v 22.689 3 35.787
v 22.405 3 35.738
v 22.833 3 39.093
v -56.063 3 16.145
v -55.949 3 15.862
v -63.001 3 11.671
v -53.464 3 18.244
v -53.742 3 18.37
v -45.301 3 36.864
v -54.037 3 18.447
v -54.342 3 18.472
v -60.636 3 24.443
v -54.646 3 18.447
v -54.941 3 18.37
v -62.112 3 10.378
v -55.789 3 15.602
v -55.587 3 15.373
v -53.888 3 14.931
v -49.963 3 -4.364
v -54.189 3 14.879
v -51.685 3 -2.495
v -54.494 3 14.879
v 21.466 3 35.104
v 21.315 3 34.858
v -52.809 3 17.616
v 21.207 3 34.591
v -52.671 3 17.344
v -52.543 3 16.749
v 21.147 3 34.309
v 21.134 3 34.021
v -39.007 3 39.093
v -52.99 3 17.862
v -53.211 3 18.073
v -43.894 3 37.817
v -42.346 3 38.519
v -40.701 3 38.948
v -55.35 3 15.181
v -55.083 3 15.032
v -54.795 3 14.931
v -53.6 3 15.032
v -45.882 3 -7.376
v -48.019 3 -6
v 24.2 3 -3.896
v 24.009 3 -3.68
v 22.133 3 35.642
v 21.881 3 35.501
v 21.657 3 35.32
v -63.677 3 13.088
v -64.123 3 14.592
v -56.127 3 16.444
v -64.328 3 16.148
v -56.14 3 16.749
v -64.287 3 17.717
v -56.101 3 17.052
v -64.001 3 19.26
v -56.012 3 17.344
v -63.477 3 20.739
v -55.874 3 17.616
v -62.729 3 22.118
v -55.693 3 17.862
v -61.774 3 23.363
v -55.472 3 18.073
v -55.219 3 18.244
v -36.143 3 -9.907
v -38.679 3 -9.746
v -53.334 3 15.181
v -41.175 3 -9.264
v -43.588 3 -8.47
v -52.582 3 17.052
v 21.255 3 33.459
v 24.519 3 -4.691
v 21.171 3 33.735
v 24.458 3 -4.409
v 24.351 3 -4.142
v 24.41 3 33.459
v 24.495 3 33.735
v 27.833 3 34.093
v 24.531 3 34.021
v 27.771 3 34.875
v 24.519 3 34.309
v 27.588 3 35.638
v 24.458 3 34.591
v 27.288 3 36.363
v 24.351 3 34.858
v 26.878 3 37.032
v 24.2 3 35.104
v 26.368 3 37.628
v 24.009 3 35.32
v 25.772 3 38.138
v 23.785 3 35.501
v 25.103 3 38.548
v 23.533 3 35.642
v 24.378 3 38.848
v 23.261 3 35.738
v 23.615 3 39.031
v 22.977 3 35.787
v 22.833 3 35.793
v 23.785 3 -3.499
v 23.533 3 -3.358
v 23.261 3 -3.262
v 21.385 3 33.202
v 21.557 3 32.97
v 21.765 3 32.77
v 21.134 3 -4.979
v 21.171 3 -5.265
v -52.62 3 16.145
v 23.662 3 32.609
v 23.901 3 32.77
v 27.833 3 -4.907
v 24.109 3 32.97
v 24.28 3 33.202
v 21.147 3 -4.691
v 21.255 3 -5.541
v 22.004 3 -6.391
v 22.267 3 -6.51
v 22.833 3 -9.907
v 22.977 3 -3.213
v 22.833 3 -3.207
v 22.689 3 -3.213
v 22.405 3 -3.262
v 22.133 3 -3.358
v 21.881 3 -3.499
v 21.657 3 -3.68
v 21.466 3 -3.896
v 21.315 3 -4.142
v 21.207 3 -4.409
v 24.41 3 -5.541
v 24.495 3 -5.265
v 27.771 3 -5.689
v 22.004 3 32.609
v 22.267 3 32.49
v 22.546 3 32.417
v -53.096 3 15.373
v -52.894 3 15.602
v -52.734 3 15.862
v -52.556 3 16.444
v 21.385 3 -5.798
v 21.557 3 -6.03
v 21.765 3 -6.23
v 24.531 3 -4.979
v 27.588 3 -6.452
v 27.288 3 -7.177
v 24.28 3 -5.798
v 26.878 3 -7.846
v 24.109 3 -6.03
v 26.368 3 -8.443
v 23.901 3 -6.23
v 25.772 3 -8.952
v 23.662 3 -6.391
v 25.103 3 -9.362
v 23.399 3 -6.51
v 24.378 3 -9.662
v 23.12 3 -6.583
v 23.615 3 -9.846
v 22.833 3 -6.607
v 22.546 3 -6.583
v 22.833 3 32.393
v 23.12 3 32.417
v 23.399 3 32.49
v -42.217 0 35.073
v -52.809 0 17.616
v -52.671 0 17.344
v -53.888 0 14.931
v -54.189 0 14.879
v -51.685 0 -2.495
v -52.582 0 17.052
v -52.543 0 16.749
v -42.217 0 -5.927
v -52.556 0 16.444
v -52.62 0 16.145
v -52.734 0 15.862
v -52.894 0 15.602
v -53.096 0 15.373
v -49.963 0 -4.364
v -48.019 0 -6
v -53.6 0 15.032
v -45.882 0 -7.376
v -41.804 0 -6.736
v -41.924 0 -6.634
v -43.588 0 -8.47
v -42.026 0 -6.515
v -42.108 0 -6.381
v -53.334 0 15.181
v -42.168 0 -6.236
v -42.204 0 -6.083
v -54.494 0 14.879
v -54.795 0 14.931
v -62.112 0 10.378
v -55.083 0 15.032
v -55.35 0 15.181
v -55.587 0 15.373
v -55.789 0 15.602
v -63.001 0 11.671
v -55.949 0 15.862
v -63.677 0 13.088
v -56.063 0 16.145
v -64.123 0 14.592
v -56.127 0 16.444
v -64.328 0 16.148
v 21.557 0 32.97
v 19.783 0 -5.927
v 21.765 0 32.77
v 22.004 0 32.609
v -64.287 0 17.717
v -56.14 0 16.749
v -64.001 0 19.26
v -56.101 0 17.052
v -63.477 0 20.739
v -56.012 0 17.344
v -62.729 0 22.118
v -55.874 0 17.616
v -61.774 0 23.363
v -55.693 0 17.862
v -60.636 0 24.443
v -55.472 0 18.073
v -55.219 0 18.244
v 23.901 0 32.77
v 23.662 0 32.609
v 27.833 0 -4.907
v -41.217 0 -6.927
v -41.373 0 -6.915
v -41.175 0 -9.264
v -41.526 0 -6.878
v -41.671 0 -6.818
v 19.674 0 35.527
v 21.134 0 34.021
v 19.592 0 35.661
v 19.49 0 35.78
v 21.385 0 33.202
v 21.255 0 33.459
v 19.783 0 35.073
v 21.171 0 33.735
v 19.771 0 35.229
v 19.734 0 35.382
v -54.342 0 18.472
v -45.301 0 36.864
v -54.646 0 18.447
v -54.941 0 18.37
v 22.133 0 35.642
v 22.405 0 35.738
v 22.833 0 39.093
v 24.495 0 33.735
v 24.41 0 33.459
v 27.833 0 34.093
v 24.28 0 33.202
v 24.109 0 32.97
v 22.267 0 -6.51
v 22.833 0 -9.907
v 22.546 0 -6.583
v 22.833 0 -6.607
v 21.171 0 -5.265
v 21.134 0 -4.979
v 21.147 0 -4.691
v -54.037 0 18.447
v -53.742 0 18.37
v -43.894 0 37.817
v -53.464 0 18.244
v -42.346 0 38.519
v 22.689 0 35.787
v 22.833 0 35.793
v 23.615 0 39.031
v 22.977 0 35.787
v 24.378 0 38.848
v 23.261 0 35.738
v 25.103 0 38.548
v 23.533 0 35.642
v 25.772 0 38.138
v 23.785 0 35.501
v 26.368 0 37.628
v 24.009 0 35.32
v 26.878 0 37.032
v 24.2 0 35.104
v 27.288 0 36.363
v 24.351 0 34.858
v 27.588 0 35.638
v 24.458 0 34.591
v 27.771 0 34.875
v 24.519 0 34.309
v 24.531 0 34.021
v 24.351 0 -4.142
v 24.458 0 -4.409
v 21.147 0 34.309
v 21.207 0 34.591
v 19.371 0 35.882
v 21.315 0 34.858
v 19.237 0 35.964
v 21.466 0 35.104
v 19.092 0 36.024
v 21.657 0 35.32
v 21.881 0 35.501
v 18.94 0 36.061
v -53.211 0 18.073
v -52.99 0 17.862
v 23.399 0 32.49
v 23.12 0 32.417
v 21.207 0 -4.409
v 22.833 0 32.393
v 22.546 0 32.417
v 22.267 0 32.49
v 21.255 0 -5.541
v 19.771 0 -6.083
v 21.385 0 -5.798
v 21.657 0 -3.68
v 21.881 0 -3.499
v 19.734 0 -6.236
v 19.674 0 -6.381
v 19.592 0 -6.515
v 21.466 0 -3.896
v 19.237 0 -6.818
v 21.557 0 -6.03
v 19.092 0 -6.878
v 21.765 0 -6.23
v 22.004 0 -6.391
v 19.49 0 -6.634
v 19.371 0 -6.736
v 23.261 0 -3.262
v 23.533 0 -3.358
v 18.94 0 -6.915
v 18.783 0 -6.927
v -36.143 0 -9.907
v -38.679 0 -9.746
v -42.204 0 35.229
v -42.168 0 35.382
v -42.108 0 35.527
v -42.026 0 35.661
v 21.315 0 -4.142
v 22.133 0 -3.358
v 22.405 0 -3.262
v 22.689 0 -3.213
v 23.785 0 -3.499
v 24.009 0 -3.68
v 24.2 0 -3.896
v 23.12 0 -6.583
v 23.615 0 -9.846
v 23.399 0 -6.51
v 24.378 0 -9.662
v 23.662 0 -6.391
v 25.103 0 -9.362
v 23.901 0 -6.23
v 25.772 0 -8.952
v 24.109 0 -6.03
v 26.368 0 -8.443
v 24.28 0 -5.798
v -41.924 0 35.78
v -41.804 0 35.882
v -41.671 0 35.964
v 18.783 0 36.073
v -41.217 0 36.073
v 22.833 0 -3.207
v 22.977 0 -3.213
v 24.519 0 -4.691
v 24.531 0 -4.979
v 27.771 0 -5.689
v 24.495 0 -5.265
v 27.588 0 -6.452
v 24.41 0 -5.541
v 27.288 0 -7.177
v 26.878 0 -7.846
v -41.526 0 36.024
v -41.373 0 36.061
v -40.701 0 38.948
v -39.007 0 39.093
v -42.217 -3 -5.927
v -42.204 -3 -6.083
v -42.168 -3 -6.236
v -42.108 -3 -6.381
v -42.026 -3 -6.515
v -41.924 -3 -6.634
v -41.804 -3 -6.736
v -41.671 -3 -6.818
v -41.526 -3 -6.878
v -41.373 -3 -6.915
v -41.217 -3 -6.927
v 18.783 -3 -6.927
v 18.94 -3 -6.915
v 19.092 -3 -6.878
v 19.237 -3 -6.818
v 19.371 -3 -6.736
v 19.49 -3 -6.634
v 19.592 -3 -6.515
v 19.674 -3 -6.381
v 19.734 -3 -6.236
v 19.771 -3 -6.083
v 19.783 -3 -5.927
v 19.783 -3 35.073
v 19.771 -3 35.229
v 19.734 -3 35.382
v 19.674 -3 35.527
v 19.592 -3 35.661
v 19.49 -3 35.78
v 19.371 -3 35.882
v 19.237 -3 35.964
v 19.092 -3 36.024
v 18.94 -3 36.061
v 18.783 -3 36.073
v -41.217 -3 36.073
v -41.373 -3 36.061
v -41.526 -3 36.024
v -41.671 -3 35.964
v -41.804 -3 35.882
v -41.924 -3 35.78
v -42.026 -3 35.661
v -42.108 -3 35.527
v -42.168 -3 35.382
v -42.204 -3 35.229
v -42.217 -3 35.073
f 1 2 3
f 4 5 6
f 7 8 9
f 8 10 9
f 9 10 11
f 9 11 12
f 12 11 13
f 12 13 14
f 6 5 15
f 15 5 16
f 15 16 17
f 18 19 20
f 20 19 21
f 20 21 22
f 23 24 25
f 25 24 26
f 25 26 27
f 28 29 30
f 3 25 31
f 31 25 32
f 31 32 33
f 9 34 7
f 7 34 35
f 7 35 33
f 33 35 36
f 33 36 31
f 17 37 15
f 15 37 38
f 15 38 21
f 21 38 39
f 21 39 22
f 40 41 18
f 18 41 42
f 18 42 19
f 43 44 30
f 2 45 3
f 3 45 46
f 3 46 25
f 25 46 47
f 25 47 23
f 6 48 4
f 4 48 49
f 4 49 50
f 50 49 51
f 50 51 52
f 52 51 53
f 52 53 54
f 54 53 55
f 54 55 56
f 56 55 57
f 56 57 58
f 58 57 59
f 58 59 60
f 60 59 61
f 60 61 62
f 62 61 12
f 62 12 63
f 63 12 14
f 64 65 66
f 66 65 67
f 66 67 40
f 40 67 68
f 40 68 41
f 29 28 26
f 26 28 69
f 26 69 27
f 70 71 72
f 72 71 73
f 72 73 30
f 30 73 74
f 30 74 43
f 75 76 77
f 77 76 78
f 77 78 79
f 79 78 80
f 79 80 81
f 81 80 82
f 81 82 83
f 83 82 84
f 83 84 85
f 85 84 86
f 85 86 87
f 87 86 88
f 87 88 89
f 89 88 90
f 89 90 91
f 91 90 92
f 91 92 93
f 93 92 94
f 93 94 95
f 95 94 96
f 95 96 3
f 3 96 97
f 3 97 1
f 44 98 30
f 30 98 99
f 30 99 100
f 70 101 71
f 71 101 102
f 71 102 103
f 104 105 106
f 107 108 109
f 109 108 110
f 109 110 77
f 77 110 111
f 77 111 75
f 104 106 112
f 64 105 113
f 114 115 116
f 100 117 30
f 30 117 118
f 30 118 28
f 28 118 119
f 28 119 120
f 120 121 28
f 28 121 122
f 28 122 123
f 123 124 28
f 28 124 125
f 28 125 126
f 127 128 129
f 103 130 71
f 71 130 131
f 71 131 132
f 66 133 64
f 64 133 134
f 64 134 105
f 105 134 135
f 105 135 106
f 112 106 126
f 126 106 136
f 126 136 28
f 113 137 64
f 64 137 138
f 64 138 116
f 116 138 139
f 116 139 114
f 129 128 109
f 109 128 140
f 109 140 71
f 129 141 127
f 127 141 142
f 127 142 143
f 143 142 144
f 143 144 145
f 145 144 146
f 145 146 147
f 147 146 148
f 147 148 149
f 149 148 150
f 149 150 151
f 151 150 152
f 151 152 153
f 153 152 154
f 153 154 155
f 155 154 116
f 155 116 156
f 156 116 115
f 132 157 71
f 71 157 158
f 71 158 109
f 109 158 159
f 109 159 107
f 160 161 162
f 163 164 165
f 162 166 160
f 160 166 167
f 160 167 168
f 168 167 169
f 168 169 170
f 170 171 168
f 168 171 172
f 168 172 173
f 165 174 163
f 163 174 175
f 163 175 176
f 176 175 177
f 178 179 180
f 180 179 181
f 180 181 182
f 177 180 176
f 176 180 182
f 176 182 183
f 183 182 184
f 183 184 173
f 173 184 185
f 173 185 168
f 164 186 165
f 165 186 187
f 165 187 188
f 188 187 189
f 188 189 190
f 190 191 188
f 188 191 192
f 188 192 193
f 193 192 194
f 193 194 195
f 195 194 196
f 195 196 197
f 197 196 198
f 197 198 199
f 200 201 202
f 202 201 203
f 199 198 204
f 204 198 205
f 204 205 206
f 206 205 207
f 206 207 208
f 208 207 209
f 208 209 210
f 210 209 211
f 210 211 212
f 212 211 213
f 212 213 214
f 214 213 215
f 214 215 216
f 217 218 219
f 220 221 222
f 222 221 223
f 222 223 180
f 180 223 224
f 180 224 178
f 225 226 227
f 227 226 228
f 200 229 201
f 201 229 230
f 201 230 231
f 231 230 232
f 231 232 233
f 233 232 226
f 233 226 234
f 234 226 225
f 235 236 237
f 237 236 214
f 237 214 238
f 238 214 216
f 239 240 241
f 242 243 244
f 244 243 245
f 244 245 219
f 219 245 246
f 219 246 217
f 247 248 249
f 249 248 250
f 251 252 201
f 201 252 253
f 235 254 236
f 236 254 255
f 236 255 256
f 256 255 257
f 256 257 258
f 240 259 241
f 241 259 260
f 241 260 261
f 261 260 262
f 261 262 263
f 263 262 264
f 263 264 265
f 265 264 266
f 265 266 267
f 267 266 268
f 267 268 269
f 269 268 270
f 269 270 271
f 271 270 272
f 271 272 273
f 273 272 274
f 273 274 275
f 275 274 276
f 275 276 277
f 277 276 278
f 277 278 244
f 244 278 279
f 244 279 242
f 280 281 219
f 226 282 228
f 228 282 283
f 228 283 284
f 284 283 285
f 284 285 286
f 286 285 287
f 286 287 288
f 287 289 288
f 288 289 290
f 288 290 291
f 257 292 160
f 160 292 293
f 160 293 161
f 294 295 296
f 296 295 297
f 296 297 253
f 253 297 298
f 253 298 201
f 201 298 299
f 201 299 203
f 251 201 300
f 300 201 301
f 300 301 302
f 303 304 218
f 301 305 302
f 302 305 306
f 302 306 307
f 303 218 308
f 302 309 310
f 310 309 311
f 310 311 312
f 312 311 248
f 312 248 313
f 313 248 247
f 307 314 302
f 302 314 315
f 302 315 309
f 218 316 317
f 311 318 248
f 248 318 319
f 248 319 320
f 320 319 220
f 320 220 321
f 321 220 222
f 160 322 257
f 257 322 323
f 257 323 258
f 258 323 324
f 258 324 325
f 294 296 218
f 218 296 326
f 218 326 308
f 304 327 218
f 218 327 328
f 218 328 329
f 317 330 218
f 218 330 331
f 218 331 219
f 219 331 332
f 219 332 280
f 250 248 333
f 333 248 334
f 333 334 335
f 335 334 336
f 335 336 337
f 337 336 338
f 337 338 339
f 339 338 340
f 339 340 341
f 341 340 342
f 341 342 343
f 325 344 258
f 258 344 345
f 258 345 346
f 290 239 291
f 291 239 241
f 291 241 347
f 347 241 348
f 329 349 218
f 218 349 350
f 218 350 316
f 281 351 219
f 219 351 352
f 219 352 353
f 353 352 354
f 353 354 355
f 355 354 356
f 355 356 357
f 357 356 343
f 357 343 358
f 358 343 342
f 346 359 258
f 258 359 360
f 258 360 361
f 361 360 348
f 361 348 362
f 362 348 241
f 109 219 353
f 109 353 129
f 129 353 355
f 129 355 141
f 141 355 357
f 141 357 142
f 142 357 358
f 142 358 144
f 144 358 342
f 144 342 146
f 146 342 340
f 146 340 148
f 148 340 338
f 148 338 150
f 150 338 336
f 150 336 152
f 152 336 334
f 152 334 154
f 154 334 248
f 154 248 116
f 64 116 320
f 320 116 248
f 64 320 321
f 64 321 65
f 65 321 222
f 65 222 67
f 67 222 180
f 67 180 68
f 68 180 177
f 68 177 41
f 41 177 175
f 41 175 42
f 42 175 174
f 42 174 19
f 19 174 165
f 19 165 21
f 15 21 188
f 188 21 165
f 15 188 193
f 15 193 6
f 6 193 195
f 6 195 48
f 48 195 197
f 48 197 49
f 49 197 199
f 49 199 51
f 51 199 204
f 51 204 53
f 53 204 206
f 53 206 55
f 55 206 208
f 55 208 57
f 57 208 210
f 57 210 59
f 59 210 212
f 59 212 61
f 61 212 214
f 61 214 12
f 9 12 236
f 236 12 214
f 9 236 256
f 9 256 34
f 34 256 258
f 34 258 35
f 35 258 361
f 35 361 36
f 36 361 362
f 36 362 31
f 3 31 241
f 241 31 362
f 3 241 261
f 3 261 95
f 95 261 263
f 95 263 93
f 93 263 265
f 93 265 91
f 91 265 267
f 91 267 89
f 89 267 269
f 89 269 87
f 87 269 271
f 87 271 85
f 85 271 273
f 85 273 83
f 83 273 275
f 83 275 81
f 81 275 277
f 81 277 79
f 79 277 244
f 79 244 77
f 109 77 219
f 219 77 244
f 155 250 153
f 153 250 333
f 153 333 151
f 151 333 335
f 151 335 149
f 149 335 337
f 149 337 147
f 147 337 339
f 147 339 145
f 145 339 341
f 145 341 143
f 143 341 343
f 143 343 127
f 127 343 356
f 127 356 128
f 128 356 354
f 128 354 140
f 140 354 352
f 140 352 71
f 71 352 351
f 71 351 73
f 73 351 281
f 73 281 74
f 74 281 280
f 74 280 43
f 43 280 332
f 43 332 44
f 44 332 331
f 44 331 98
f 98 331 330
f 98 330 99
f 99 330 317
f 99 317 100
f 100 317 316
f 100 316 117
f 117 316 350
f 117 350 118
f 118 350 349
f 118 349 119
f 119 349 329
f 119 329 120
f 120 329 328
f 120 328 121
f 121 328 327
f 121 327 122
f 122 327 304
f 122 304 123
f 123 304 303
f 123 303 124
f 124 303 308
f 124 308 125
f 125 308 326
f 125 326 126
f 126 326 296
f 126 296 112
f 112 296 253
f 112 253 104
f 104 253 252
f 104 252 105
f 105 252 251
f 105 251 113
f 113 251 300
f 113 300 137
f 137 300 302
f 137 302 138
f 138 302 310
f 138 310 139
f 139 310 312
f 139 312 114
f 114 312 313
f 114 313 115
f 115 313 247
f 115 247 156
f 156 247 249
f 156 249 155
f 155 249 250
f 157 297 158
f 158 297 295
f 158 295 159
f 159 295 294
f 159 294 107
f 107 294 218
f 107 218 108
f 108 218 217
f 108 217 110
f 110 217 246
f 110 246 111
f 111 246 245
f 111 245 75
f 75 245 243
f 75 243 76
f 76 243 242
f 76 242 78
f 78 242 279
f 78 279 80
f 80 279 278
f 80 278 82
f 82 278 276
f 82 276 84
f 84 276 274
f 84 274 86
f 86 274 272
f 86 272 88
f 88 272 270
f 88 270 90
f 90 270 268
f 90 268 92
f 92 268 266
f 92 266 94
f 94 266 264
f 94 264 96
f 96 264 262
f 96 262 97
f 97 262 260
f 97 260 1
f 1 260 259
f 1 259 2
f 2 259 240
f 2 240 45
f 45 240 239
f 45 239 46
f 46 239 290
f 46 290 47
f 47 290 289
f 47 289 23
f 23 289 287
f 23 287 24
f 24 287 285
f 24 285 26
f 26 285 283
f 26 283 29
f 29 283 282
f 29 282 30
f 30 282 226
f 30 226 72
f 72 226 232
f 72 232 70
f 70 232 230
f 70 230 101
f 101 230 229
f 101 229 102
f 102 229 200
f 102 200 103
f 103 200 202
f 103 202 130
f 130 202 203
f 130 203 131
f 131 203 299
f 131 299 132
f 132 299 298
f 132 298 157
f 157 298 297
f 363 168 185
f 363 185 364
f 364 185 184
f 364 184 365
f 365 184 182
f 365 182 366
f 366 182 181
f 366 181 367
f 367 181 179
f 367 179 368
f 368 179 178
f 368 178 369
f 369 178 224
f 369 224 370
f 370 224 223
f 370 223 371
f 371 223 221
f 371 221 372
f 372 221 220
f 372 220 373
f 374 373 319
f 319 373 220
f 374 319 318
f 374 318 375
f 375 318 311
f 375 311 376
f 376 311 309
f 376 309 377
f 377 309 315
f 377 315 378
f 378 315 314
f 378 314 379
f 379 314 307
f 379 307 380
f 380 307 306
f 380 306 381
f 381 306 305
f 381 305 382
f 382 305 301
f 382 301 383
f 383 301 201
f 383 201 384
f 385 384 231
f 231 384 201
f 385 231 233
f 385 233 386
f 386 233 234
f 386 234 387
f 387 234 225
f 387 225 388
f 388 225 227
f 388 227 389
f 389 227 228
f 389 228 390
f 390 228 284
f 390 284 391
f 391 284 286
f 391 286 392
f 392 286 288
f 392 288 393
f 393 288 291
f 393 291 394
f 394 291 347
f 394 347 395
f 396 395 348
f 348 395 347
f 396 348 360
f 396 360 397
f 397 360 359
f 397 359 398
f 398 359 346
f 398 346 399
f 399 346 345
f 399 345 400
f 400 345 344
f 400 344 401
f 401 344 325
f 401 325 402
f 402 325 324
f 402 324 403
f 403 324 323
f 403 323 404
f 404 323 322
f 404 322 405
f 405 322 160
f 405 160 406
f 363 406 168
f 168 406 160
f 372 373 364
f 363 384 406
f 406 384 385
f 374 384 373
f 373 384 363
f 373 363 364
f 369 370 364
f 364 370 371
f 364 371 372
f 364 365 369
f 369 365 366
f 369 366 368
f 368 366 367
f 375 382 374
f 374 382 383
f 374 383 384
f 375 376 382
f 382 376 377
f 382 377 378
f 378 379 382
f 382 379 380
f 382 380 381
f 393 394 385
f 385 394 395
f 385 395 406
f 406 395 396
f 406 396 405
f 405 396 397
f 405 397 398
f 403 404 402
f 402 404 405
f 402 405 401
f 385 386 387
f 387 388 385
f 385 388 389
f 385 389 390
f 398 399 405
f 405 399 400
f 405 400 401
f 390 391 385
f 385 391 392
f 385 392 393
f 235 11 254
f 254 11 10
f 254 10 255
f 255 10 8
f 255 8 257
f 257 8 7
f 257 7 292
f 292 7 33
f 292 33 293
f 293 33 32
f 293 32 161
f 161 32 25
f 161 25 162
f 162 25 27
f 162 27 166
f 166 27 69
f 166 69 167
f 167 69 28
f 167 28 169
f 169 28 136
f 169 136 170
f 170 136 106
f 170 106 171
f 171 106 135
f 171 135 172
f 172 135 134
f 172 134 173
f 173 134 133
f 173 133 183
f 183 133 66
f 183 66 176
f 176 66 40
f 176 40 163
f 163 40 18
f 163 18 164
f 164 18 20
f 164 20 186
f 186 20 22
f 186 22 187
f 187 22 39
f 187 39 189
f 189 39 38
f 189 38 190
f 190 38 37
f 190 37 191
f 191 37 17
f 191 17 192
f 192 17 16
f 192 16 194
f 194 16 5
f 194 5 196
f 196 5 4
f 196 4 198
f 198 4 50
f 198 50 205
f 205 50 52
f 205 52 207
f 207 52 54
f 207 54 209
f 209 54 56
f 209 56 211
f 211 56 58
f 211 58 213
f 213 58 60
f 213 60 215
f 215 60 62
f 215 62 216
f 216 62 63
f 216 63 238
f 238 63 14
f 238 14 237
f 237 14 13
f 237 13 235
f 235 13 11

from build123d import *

# Parameters (mm, degrees)
SKETCH1_R           = 1.7
BOSS_EXTRUDE2_DEPTH = 3
BOSS_EXTRUDE3_DEPTH = 3
SKETCH4_R           = 1.8
CUT_EXTRUDE1_DEPTH  = 5


with BuildPart() as part:
    # Sketch1 → Boss-Extrude2 (new body)
    with BuildSketch(Plane(origin=(0, 0, 0), x_dir=(1, 0, 0), z_dir=(0, 1, 0))):
        with BuildLine():
            Line((-39.007261737, -39.092855818), (22.832898339, -39.092855818))
            ThreePointArc((22.832898339, -39.092855818), (26.368432245, -37.628389724), (27.832898339, -34.092855818))
            Line((27.832898339, -34.092855818), (27.832898339, 4.907144182))
            ThreePointArc((27.832898339, 4.907144182), (26.368432245, 8.442678088), (22.832898339, 9.907144182))
            Line((22.832898339, 9.907144182), (-36.143461968, 9.907144182))
            ThreePointArc((-36.143461968, 9.907144182), (-44.75263802, 7.959348694), (-51.684922644, 2.495352954))
            Line((-51.684922644, 2.495352954), (-62.112298102, -10.378332935))
            ThreePointArc((-62.112298102, -10.378332935), (-64.286907773, -17.716569545), (-60.63567215, -24.443167658))
            Line((-60.63567215, -24.443167658), (-45.301366123, -36.863586155))
            ThreePointArc((-45.301366123, -36.863586155), (-42.345876466, -38.519077314), (-39.007261737, -39.092855818))
        make_face()
        with Locations(Location((22.832898339, 4.907144182, 0), (0, 0, 270))):
            Circle(SKETCH1_R, mode=Mode.SUBTRACT)
        with Locations(Location((22.832898339, -34.092855818, 0), (0, 0, 270))):
            Circle(SKETCH1_R, mode=Mode.SUBTRACT)
    extrude(amount=BOSS_EXTRUDE2_DEPTH)

    # Sketch3 → Boss-Extrude3 (add)
    with BuildSketch(Plane.XZ):
        with BuildLine():
            ThreePointArc((-41.216654954, -6.9270495), (-41.923761735, -6.634156281), (-42.216654954, -5.9270495))
            Line((-42.216654954, -5.9270495), (-42.216654954, 35.0729505))
            ThreePointArc((-42.216654954, 35.0729505), (-41.923761735, 35.780057281), (-41.216654954, 36.0729505))
            Line((-41.216654954, 36.0729505), (18.783345046, 36.0729505))
            ThreePointArc((18.783345046, 36.0729505), (19.490451827, 35.780057281), (19.783345046, 35.0729505))
            Line((19.783345046, 35.0729505), (19.783345046, -5.9270495))
            ThreePointArc((19.783345046, -5.9270495), (19.490451827, -6.634156281), (18.783345046, -6.9270495))
            Line((18.783345046, -6.9270495), (-41.216654954, -6.9270495))
        make_face()
    extrude(amount=BOSS_EXTRUDE3_DEPTH)

    # Sketch4 → Cut-Extrude1 (cut)
    with BuildSketch(Plane(origin=(0, 3, 0), x_dir=(1, 0, 0), z_dir=(0, 1, 0))):
        with Locations(Location((-54.341567764, -16.672437321, 0), (0, 0, 270))):
            Circle(SKETCH4_R)
    extrude(amount=-CUT_EXTRUDE1_DEPTH, mode=Mode.SUBTRACT)


solid = part.part
